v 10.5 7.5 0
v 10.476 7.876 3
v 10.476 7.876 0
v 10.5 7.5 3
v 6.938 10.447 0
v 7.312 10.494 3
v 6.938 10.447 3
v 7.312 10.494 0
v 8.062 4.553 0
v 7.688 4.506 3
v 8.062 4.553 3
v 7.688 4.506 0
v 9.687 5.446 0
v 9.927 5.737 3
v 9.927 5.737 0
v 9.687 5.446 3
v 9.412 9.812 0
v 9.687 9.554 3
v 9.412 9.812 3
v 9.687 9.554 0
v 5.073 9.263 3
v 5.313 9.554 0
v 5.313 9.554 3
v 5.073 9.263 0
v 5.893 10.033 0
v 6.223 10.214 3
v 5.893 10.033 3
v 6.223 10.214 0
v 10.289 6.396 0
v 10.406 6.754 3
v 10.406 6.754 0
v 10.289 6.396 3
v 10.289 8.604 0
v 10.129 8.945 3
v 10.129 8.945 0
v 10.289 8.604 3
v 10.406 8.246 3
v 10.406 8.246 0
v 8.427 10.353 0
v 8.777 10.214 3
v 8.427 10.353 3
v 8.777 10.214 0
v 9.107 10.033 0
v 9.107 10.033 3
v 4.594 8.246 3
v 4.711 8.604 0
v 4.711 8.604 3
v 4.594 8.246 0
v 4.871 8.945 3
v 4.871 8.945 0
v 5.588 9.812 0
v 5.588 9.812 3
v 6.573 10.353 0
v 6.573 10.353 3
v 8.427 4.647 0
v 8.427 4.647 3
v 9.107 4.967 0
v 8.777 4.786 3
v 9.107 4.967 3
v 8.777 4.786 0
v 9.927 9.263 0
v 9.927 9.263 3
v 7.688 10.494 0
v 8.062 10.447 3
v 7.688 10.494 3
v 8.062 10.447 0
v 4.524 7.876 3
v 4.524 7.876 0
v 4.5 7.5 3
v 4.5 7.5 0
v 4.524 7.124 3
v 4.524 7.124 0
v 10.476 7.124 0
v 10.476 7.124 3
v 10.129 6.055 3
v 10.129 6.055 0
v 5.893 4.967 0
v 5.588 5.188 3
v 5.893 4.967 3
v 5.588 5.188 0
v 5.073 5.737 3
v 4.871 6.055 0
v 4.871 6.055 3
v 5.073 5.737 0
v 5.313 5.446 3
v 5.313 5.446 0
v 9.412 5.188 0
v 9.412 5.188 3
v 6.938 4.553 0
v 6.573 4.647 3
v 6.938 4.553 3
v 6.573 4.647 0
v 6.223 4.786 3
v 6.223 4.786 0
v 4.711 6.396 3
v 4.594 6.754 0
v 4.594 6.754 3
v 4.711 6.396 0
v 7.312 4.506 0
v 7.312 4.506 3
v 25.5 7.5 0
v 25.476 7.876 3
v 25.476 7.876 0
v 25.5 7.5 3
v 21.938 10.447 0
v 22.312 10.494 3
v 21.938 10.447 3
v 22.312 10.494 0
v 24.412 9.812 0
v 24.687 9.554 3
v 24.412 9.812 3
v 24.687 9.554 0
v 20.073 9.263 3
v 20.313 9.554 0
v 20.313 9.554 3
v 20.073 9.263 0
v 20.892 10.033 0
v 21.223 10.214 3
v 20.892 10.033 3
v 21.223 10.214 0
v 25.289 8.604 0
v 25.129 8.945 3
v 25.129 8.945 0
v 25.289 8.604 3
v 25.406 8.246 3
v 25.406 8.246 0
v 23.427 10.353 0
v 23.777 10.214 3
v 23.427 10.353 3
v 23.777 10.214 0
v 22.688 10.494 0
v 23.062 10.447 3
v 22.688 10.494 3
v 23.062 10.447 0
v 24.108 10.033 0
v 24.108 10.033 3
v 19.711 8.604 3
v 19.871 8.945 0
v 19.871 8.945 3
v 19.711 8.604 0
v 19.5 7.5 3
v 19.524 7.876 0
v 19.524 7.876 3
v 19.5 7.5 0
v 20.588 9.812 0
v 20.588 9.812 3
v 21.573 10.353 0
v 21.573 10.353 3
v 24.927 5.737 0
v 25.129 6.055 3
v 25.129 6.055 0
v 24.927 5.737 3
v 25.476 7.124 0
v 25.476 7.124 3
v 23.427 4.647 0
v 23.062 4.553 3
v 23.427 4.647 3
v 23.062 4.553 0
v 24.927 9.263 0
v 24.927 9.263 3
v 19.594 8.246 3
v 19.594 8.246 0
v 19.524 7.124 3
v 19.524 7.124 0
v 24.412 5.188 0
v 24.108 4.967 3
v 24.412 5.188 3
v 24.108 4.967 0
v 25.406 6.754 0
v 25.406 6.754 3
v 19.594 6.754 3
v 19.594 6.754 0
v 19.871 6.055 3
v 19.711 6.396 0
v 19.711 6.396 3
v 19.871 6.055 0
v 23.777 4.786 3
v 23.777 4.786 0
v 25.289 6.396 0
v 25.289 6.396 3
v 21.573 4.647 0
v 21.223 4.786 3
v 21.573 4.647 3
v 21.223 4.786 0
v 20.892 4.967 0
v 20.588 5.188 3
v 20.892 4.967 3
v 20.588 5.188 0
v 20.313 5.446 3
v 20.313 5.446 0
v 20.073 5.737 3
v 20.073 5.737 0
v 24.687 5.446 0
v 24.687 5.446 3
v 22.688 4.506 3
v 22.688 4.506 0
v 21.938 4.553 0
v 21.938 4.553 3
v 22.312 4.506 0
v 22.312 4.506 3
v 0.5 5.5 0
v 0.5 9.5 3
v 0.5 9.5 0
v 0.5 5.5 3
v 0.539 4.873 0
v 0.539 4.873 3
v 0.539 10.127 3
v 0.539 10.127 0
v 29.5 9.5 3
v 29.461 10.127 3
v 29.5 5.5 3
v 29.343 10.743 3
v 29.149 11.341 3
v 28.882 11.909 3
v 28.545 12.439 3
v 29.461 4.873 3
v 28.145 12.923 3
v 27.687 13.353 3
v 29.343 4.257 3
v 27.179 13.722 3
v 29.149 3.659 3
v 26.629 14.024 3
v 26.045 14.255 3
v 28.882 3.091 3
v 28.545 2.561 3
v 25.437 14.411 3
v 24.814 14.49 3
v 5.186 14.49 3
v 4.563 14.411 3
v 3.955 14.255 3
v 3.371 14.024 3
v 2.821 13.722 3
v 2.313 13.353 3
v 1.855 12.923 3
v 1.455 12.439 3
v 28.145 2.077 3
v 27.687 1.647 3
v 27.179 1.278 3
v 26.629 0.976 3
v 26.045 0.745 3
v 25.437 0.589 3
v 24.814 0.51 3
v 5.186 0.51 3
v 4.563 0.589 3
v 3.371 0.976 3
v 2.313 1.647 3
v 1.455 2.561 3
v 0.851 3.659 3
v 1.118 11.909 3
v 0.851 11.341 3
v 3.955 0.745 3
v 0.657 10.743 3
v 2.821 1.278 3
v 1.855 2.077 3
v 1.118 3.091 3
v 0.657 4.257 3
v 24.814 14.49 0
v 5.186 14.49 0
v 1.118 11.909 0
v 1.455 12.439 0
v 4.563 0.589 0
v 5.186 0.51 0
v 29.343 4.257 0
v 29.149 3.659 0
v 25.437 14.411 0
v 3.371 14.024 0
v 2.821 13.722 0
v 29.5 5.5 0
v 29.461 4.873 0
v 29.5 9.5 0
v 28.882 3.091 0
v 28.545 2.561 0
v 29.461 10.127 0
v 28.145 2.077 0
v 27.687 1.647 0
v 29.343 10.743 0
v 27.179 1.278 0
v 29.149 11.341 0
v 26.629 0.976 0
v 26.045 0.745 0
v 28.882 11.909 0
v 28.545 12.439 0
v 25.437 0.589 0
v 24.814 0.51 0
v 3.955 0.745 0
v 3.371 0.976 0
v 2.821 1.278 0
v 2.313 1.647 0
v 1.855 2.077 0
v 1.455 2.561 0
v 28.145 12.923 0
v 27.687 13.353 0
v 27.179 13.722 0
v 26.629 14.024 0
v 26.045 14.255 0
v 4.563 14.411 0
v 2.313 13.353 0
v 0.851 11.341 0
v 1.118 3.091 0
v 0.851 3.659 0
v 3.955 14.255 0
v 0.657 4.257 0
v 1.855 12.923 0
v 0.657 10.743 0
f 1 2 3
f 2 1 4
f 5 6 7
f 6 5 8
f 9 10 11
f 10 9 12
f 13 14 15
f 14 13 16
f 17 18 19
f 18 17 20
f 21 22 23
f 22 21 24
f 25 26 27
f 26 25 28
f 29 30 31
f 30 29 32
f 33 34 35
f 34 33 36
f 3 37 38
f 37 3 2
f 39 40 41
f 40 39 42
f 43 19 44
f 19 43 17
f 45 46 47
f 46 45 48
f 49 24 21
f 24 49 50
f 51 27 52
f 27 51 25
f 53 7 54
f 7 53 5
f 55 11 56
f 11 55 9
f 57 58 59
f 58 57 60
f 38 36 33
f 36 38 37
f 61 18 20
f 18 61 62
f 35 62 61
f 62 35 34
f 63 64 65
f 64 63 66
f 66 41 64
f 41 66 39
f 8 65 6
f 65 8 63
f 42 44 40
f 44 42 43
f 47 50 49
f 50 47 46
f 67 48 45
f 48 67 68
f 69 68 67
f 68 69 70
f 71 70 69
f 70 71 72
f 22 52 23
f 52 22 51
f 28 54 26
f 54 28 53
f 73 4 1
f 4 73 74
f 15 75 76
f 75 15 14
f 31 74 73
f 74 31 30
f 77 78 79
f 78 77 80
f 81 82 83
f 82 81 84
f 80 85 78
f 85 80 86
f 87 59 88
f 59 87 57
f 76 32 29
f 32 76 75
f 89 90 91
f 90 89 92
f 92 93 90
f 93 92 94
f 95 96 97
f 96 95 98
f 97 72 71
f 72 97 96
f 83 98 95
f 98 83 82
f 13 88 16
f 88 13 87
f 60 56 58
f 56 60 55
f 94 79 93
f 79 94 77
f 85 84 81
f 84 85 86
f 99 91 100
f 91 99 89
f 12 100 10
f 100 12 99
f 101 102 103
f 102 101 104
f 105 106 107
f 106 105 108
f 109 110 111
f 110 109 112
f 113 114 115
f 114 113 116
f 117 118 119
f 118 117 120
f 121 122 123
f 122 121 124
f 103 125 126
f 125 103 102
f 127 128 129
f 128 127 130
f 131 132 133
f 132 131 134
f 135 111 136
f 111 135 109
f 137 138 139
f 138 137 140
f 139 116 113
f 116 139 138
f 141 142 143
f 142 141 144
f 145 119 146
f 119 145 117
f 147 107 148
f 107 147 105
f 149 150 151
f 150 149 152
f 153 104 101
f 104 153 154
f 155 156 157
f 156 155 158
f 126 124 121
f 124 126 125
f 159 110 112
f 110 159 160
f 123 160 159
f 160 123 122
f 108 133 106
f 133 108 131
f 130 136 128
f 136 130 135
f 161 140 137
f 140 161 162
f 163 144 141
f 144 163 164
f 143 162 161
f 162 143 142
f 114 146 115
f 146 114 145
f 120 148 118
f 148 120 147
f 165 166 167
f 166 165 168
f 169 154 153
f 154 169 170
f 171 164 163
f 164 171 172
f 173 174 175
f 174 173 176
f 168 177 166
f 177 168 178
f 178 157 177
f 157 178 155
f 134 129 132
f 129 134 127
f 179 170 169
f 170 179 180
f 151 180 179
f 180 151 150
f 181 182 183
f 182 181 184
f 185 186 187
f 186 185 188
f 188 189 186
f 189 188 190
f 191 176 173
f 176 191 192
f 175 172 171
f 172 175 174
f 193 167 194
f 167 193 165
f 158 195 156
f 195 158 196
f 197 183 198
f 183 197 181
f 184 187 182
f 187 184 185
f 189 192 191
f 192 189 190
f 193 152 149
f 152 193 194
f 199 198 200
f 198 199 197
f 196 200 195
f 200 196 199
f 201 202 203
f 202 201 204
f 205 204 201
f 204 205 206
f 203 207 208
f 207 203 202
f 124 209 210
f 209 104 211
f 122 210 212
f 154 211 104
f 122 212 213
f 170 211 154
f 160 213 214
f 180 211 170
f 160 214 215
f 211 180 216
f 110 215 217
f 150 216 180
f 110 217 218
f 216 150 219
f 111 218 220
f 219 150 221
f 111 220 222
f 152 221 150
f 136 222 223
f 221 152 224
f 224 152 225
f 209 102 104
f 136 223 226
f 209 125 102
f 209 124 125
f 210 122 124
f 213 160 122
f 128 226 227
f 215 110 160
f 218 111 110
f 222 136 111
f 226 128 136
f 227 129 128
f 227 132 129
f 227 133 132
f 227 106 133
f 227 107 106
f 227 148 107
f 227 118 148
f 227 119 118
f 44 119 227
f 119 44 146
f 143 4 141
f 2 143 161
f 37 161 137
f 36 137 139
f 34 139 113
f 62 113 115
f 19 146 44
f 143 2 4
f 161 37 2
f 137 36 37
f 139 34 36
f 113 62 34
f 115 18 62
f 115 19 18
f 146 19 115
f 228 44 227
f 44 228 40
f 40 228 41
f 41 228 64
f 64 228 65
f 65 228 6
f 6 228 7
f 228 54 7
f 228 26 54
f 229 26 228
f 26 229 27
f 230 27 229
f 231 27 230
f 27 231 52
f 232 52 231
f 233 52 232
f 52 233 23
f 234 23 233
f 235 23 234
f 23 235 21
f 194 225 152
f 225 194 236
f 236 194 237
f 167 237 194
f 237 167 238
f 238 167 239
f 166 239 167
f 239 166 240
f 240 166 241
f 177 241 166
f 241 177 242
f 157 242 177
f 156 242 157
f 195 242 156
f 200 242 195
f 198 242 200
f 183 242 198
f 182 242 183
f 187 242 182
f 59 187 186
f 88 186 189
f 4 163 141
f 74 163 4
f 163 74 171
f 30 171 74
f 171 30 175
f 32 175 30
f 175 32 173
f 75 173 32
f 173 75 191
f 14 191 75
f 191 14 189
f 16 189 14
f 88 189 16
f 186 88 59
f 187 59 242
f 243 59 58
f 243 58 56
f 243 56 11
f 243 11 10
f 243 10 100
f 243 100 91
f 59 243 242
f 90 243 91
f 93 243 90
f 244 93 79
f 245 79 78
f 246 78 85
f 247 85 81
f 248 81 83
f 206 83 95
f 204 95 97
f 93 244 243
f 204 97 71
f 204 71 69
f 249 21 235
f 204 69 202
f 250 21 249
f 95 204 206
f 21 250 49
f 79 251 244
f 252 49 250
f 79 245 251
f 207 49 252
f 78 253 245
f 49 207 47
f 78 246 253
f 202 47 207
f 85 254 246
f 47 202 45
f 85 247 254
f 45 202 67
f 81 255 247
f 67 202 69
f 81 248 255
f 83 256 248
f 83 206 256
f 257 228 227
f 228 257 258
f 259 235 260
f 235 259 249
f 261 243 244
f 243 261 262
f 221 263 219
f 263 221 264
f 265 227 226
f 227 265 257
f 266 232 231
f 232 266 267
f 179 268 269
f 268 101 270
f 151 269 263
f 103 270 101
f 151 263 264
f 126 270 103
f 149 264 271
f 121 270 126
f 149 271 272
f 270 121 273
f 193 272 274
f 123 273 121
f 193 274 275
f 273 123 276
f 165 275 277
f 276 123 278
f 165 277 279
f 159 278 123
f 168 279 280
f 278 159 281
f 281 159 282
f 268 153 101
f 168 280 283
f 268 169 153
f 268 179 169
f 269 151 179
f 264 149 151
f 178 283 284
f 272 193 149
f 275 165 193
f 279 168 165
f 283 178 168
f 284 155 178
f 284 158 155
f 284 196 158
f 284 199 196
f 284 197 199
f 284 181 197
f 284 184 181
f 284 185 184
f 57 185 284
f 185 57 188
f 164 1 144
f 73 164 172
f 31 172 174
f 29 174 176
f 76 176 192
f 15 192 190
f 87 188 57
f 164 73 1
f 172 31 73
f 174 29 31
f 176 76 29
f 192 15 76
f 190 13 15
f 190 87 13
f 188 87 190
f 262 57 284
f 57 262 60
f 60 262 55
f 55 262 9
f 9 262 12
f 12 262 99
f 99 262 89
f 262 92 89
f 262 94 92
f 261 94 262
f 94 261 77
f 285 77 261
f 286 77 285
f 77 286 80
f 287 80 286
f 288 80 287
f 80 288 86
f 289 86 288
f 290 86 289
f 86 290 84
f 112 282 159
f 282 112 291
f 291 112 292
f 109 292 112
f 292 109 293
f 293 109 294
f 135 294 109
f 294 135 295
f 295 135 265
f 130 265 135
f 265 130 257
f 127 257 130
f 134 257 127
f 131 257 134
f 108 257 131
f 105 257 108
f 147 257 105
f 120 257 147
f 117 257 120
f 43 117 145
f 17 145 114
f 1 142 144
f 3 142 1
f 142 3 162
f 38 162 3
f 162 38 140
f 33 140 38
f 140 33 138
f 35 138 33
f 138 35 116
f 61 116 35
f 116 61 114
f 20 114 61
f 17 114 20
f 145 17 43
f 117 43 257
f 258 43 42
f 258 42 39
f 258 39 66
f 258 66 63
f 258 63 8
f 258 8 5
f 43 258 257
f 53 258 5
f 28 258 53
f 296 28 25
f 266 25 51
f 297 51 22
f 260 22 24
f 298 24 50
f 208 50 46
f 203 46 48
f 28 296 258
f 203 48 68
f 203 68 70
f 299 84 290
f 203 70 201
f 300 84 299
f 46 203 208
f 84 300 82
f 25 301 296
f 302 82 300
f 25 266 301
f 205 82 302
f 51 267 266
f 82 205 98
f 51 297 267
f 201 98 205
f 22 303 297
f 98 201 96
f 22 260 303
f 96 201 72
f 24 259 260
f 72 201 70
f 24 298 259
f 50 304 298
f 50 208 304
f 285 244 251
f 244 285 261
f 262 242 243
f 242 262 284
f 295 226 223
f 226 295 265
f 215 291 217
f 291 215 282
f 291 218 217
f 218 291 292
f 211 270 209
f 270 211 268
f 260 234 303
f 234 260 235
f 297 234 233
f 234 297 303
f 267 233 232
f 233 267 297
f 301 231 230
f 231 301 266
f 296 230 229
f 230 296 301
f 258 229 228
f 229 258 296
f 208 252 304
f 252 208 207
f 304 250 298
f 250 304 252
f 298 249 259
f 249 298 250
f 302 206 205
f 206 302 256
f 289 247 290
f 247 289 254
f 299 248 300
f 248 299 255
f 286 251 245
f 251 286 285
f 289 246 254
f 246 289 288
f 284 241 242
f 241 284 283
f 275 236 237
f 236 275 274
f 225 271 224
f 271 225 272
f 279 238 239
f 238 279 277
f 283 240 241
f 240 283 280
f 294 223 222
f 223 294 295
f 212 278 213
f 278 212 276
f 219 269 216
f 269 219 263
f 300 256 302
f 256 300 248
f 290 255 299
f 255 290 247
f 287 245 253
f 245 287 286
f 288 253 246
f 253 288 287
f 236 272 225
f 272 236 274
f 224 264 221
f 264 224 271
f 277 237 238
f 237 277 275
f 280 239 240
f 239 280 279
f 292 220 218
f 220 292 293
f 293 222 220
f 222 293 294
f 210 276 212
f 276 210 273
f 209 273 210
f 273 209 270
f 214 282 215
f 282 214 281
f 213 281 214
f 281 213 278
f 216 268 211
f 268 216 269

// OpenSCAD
// Generated by SolidPython 1.1.3 on 2023-01-30 13:24:36
$fn = 50;


difference() {
	union() {
		translate(v = [15.0000000000, 7.5000000000, 0]) {
			rotate(a = [0, 0, 0]) {
				hull() {
					translate(v = [-9.5000000000, 2.0000000000, 0]) {
						rotate(a = [0, 0, 0]) {
							translate(v = [0, 0, 0]) {
								rotate(a = [0, 0, 0]) {
									cylinder(h = 3, r = 5);
								}
							}
						}
					}
					translate(v = [9.5000000000, 2.0000000000, 0]) {
						rotate(a = [0, 0, 0]) {
							translate(v = [0, 0, 0]) {
								rotate(a = [0, 0, 0]) {
									cylinder(h = 3, r = 5);
								}
							}
						}
					}
					translate(v = [-9.5000000000, -2.0000000000, 0]) {
						rotate(a = [0, 0, 0]) {
							translate(v = [0, 0, 0]) {
								rotate(a = [0, 0, 0]) {
									cylinder(h = 3, r = 5);
								}
							}
						}
					}
					translate(v = [9.5000000000, -2.0000000000, 0]) {
						rotate(a = [0, 0, 0]) {
							translate(v = [0, 0, 0]) {
								rotate(a = [0, 0, 0]) {
									cylinder(h = 3, r = 5);
								}
							}
						}
					}
				}
			}
		}
	}
	union() {
		translate(v = [7.5000000000, 7.5000000000, 0]) {
			rotate(a = [0, 0, 0]) {
				translate(v = [0, 0, -50]) {
					rotate(a = [0, 0, 0]) {
						cylinder(h = 100, r = 3.0000000000);
					}
				}
			}
		}
		translate(v = [22.5000000000, 7.5000000000, 0]) {
			rotate(a = [0, 0, 0]) {
				translate(v = [0, 0, -50]) {
					rotate(a = [0, 0, 0]) {
						cylinder(h = 100, r = 3.0000000000);
					}
				}
			}
		}
	}
}
/***********************************************
*********      SolidPython code:      **********
************************************************
 
from solid import *
import os
import subprocess

import oomB

import opsc_library_gen

mode = "laser"
#mode = "3d_print"

defined_objects = {}

radius_dict = {}
countersunk_dict = {}


def set_mode(m):
    global mode
    mode = m
    radius_dict['M6'] = 6.5/2
    radius_dict['M3'] = 3.3/2
    if mode == "laser":
        radius_dict['M6'] = 6/2
        radius_dict['M3'] = 3/2

    countersunk_dict['M3'] = {}
    countersunk_dict['M3']['little_rad'] = radius_dict['M3']
    countersunk_dict['M3']['big_rad'] = (5.5+0.6)/2
    if mode == "laser":
        countersunk_dict['M3']['big_rad'] = (4.75+0.6)/2
        countersunk_dict['M3']['little_rad'] = (4.75+0.6)/2

    countersunk_dict['M3']['height'] = 1.7


def opsc_make_object(filename, objects, save_type="none",resolution=50, layers = 1, tilediff = 200, mode="laser"):
    set_mode(mode)
    save_type = save_type.lower()
    os.makedirs(os.path.dirname(filename), exist_ok=True)
    final_object = opsc_get_object(objects)
    # Save the final object to the specified filename    
    scad_render_to_file(final_object, filename, file_header='$fn = %s;' % resolution, include_orig_code=True)
    if mode == "laser":
        filename_laser = filename.replace(".scad","-flat.scad")
        scad_render_to_file(getLaser(final_object, layers=layers, tilediff=tilediff), filename_laser, file_header='$fn = %s;' % resolution, include_orig_code=True)
        if save_type == "all":
            saveToAll(filename_laser)
        elif save_type == "dxf":
            saveToDxf(filename_laser)
    if save_type == "all":
        saveToAll(filename)
    elif save_type == "dxf":
        saveToDxf(filename)


def opsc_get_object(objects):
    # Create the solidpython objects
    positive_objects = [get_opsc_item(obj) for obj in objects if obj['type'] == 'positive']
    negative_objects = [get_opsc_item(obj) for obj in objects if obj['type'] == 'negative']
    # Union the positive objects
    positive_object = union()(*positive_objects)
    # Union the negative objects
    negative_object = union()(*negative_objects)
    # Create the final object by subtracting the negative objects from the positive objects
    return difference()(positive_object, negative_object)

def get_opsc_item(params):
    # A dictionary to map radius string values to numerical values
    #radius_dict = {'small': 5, 'medium': 10, 'large': 15}
    # An array of function names for basic shapes
    basic_shapes = ['cube', 'sphere', 'cylinder']
    
    # An array of function names for other shapes
    other_shapes = ['hole', 'slot', 'rounded_rectangle', 'countersunk']
    


    # Convert radius to r if present, and remove radius from the params dictionary
    if 'radius' in params:
        if isinstance(params['radius'], str):
            # Use the radius_dict to map the radius string value to a numerical value
            params['r'] = radius_dict[params['radius']]
        else:
            params['r'] = params['radius']
        del params['radius']
    

    # Check if the object type is a basic shape
    if params['shape'] in basic_shapes:
        # Remove shape and unexpected dictionary values
        allowed_keys = {'size', 'r', 'r1', 'r2', 'd', 'h', 'rw', 'rh', 'dw', 'dh'}
        shape_params = {k: v for k, v in params.items() if k in allowed_keys}

        # Call the corresponding function for the shape parameter, using ** notation to pass the shape_params dictionary as keyword arguments
        return get_opsc_transform(params,globals()[params['shape']](**shape_params))
    
    # If the object type is not a basic shape, check if it's a defined object or one of the other shapes
    elif params['shape'] in other_shapes:
        # Call the corresponding function for the shape parameter, passing the params dictionary as an argument
        p2 = copy.deepcopy(params)
        p2["pos"] = [0,0,0]
        return get_opsc_transform(params,globals()[params['shape']](p2))
    
    # If the object is not a basic shape or a defined object, try to import it from a .scad file
    else:
        obj = defined_objects[params['shape']]
        return get_opsc_transform(params,obj)

def get_opsc_transform(params, solid_obj):
    # Rotate the object based on the 'rot' field in the params dictionary, or the 'rotX', 'rotY', and 'rotZ' fields if 'rot' is not present
    rot = params.get('rot', [])
    if rot:
        rotX, rotY, rotZ = rot
    else:
        rotX = params.get('rotX', 0)
        rotY = params.get('rotY', 0)
        rotZ = params.get('rotZ', 0)
    solid_obj = rotate([rotX, rotY, rotZ])(solid_obj)

    # Translate the object based on the 'pos' field in the params dictionary, or the 'x', 'y', and 'z' fields if 'pos' is not present
    pos = params.get('pos', [])
    if pos:
        x, y, z = pos
    else:
        x = params.get('x', 0)
        y = params.get('y', 0)
        z = params.get('z', 0)
    solid_obj = translate([x, y, z])(solid_obj)
    return solid_obj


import random

def opsc_easy_array(type, shape, repeats, pos_start, shift_arr, **kwargs):
    for i in range(0,3):
        repeats.append(1)
        pos_start.append(0)
        shift_arr.append(0)
    return_objects = []

    for x in range(0,repeats[0]):
        for y in range(0,repeats[1]):
            for z in range(0,repeats[2]):
                return_objects.append(opsc_easy(type, shape, pos=[pos_start[0]+x*shift_arr[0],pos_start[1]+y*shift_arr[1],pos_start[2]+z*shift_arr[2]], **kwargs))
    return return_objects                



def opsc_easy(type, shape, **kwargs):
    obj = {
        'type': type,
        'shape': shape
    }
    for param in ['size', 'r', 'r1', 'r2', 'd', 'h', 'rw', 'rh', 'dw', 'dh', 'pos', 'x', 'y', 'z', 'rot', 'rotX', 'rotY', 'rotZ', "w"]:
        if param in kwargs:
            obj[param] = kwargs[param]
    return obj

def hole(params):
    p2 = copy.deepcopy(params)  
    # Check if the radius is a string and replace it with the corresponding value from the dictionary
    if isinstance(p2['r'], str):
        p2['r'] = radius_dict[p2['r']]
    
    # Set the height to 100 if not specified
    if 'h' not in p2:
        p2['h'] = 100
        p2["pos"] = [0,0,-50]
    p2["center"] = True
    # Create the cylinder object
    p2["shape"] = "cylinder"
    p2["type"] = "positive"

    return get_opsc_item(p2)

import copy

def countersunk(params):
    p2 = copy.deepcopy(params)
    counter_rad = p2['r']
    p2['r'] = radius_dict[p2['r']]
    hp = copy.deepcopy(p2)
    hp["type"] = "positive"
    hp["shape"] = "hole"
    del hp["rot"]
    hol = get_opsc_item(hp)
    
    cp = copy.deepcopy(p2)
    cp["h"] = countersunk_dict[counter_rad]["height"]
    cp["r2"] = countersunk_dict[counter_rad]["little_rad"]
    cp["r1"] = countersunk_dict[counter_rad]["big_rad"]
    del cp["r"]
    del cp["rot"]
    cp["type"] = "positive"
    cp["shape"] = "cylinder"
    cp["pos"] = [0,0,0]

    top = get_opsc_item(cp)
    return union()(hol,top)



def slot(params):  
    p2 = copy.deepcopy(params) 
    if isinstance(p2['r'], str):
        p2['r'] = radius_dict[p2['r']]
    p2["type"] = "positive"
    p2["shape"] = "hole"
    del p2["rot"]
    p2["pos"] = [0,0,0]
    left = copy.deepcopy(p2)
    right = copy.deepcopy(p2)
    left["pos"][0] = p2["w"] / 2 - p2["r"] 
    
    right["pos"][0] = -p2["w"] / 2 + p2["r"] 
    pass
    leftObj = get_opsc_item(left)
    rightObj = get_opsc_item(right)
    return hull()(leftObj, rightObj)

def rounded_rectangle(params):   
    p2 = copy.deepcopy(params) 
    p2["h"] = p2["size"][2]
    p2["pos"] = p2.get("pos", [0, 0, 0]) 
    p2["type"] = "positive"
    p2["shape"] = "hole"
    p2["pos"] = [0,0,0]
    
    if 'rot' in p2:
        del p2["rot"]   
    if 'r' not in p2:
        p2["r"] = 5 
    tl = copy.deepcopy(p2)
    tr = copy.deepcopy(p2)
    bl = copy.deepcopy(p2)
    br = copy.deepcopy(p2)
    tl["pos"][0] = -(p2["size"][0] - p2["r"]*2)/2
    tl["pos"][1] = (p2["size"][1] - p2["r"]*2)/2
    tr["pos"][0] = (p2["size"][0] - p2["r"]*2)/2
    tr["pos"][1] = (p2["size"][1] - p2["r"]*2)/2
    bl["pos"][0] = -(p2["size"][0] - p2["r"]*2)/2
    bl["pos"][1] = -(p2["size"][1] - p2["r"]*2)/2
    br["pos"][0] = (p2["size"][0] - p2["r"]*2)/2
    br["pos"][1] = -(p2["size"][1] - p2["r"]*2)/2
    del tl["size"]
    del tr["size"]
    del bl["size"]
    del br["size"]
    tlo = get_opsc_item(tl)
    tro = get_opsc_item(tr)
    blo = get_opsc_item(bl)
    bro = get_opsc_item(br)    
    return hull()(tlo, tro, blo, bro)



def import_scad_object(filename):
    # Import the .scad file and convert it to a solidpython object
    #filename = "parts"
    obj = import_scad(filename)
    return obj.main()
    


import os
import solid as solidpython

# A dictionary to store the defined objects


def load_scad_objects():
    opsc_library_gen.gen_library(defined_objects)

import random

def test(num_objects):
    objects = []
    for i in range(num_objects):
        # Choose a random shape
        #shape = random.choice(['cube', 'sphere', 'cylinder', 'hole', 'slot', "rounded_rectangle"])
        shape = random.choice(["rounded_rectangle"])

        # Choose a random type
        type = random.choice(['positive', 'negative'])
        
        # Create an empty object dictionary
        obj = {'shape': shape, 'type': type}
        
        # Set shape-specific parameters
        if obj['shape'] in ['cube']:
            obj['size'] =  [random.uniform(5, 15), random.uniform(5, 15), random.uniform(5, 15)]
        if obj['shape'] in ['rounded_rectangle']:
            obj['size'] =  [random.uniform(5, 15), random.uniform(5, 15), random.uniform(5, 15)]
            obj['r'] = random.uniform(0.5, 5)
        elif obj['shape'] == 'sphere':
            obj['r'] = random.uniform(5, 15)
        elif obj['shape'] in ['cylinder', 'hole']:
            obj['r'] = random.uniform(0.5, 5)
            obj['h'] = random.uniform(5, 15)
        elif obj['shape'] == 'slot':
            obj['r'] = random.uniform(0.5, 5)
            obj['h'] = random.uniform(5, 15)
            obj['w'] = random.uniform(5, 15)
        
        # Set a random position and rotation
        obj['pos'] = [random.uniform(-20, 20), random.uniform(-20, 20), random.uniform(-20, 20)]
        obj['rot'] = [random.uniform(-180, 180), random.uniform(-180, 180), random.uniform(-180, 180)]
        
        # Add the object to the list
        objects.append(obj)
    return objects

####### old file saving
def saveToAll(fileIn):
    saveToDxf(fileIn)
    saveToPng(fileIn)
    saveToStl(fileIn)
    saveToSvg(fileIn)

def saveToDxf(fileIn, fileOut="", copy_to_laser=True):
    if fileOut == "":
        fileOut = fileIn.replace(".scad",".dxf")
    saveToFile(fileIn, fileOut)


    
def saveToPng(fileIn, fileOut="",extra="--render"):
    if fileOut == "":
        fileOut = fileIn.replace(".scad",".png")
    saveToFile(fileIn, fileOut)

def saveToStl(fileIn, fileOut=""):
    if fileOut == "":
        fileOut = fileIn.replace(".scad",".stl")
    saveToFile(fileIn, fileOut)
    
def saveToSvg(fileIn, fileOut=""):
    if fileOut == "":
        fileOut = fileIn.replace(".scad",".svg")
    saveToFile(fileIn, fileOut)

def saveToFile(fileIn, fileOut,extra=""):
    #extra = extra + " --colorscheme Tomorrow"

    launchStr = 'openscad -o "' + fileOut + '"' + extra + ' "' + fileIn + '"'
    if ".png" in fileOut:
        launchStr = launchStr + " --render"
    print("            saveToFile launch string: " + launchStr)
    subprocess.run(launchStr)
    x=0

def getLaser(final_object,start=1.5,layers=1,thickness=3,tilediff=200):
        rv= []

        for x in range(layers):
            rv.append(translate([0,x*tilediff,0])(
                    projection()(
                        intersection()(translate([-500,-500,start+x*thickness])(cube(size=[1000,1000,0.1])),
                            final_object
                        )
                    )
            )
            )
            
        return union()(rv)

set_mode("laser")
load_scad_objects() 
 
************************************************/
